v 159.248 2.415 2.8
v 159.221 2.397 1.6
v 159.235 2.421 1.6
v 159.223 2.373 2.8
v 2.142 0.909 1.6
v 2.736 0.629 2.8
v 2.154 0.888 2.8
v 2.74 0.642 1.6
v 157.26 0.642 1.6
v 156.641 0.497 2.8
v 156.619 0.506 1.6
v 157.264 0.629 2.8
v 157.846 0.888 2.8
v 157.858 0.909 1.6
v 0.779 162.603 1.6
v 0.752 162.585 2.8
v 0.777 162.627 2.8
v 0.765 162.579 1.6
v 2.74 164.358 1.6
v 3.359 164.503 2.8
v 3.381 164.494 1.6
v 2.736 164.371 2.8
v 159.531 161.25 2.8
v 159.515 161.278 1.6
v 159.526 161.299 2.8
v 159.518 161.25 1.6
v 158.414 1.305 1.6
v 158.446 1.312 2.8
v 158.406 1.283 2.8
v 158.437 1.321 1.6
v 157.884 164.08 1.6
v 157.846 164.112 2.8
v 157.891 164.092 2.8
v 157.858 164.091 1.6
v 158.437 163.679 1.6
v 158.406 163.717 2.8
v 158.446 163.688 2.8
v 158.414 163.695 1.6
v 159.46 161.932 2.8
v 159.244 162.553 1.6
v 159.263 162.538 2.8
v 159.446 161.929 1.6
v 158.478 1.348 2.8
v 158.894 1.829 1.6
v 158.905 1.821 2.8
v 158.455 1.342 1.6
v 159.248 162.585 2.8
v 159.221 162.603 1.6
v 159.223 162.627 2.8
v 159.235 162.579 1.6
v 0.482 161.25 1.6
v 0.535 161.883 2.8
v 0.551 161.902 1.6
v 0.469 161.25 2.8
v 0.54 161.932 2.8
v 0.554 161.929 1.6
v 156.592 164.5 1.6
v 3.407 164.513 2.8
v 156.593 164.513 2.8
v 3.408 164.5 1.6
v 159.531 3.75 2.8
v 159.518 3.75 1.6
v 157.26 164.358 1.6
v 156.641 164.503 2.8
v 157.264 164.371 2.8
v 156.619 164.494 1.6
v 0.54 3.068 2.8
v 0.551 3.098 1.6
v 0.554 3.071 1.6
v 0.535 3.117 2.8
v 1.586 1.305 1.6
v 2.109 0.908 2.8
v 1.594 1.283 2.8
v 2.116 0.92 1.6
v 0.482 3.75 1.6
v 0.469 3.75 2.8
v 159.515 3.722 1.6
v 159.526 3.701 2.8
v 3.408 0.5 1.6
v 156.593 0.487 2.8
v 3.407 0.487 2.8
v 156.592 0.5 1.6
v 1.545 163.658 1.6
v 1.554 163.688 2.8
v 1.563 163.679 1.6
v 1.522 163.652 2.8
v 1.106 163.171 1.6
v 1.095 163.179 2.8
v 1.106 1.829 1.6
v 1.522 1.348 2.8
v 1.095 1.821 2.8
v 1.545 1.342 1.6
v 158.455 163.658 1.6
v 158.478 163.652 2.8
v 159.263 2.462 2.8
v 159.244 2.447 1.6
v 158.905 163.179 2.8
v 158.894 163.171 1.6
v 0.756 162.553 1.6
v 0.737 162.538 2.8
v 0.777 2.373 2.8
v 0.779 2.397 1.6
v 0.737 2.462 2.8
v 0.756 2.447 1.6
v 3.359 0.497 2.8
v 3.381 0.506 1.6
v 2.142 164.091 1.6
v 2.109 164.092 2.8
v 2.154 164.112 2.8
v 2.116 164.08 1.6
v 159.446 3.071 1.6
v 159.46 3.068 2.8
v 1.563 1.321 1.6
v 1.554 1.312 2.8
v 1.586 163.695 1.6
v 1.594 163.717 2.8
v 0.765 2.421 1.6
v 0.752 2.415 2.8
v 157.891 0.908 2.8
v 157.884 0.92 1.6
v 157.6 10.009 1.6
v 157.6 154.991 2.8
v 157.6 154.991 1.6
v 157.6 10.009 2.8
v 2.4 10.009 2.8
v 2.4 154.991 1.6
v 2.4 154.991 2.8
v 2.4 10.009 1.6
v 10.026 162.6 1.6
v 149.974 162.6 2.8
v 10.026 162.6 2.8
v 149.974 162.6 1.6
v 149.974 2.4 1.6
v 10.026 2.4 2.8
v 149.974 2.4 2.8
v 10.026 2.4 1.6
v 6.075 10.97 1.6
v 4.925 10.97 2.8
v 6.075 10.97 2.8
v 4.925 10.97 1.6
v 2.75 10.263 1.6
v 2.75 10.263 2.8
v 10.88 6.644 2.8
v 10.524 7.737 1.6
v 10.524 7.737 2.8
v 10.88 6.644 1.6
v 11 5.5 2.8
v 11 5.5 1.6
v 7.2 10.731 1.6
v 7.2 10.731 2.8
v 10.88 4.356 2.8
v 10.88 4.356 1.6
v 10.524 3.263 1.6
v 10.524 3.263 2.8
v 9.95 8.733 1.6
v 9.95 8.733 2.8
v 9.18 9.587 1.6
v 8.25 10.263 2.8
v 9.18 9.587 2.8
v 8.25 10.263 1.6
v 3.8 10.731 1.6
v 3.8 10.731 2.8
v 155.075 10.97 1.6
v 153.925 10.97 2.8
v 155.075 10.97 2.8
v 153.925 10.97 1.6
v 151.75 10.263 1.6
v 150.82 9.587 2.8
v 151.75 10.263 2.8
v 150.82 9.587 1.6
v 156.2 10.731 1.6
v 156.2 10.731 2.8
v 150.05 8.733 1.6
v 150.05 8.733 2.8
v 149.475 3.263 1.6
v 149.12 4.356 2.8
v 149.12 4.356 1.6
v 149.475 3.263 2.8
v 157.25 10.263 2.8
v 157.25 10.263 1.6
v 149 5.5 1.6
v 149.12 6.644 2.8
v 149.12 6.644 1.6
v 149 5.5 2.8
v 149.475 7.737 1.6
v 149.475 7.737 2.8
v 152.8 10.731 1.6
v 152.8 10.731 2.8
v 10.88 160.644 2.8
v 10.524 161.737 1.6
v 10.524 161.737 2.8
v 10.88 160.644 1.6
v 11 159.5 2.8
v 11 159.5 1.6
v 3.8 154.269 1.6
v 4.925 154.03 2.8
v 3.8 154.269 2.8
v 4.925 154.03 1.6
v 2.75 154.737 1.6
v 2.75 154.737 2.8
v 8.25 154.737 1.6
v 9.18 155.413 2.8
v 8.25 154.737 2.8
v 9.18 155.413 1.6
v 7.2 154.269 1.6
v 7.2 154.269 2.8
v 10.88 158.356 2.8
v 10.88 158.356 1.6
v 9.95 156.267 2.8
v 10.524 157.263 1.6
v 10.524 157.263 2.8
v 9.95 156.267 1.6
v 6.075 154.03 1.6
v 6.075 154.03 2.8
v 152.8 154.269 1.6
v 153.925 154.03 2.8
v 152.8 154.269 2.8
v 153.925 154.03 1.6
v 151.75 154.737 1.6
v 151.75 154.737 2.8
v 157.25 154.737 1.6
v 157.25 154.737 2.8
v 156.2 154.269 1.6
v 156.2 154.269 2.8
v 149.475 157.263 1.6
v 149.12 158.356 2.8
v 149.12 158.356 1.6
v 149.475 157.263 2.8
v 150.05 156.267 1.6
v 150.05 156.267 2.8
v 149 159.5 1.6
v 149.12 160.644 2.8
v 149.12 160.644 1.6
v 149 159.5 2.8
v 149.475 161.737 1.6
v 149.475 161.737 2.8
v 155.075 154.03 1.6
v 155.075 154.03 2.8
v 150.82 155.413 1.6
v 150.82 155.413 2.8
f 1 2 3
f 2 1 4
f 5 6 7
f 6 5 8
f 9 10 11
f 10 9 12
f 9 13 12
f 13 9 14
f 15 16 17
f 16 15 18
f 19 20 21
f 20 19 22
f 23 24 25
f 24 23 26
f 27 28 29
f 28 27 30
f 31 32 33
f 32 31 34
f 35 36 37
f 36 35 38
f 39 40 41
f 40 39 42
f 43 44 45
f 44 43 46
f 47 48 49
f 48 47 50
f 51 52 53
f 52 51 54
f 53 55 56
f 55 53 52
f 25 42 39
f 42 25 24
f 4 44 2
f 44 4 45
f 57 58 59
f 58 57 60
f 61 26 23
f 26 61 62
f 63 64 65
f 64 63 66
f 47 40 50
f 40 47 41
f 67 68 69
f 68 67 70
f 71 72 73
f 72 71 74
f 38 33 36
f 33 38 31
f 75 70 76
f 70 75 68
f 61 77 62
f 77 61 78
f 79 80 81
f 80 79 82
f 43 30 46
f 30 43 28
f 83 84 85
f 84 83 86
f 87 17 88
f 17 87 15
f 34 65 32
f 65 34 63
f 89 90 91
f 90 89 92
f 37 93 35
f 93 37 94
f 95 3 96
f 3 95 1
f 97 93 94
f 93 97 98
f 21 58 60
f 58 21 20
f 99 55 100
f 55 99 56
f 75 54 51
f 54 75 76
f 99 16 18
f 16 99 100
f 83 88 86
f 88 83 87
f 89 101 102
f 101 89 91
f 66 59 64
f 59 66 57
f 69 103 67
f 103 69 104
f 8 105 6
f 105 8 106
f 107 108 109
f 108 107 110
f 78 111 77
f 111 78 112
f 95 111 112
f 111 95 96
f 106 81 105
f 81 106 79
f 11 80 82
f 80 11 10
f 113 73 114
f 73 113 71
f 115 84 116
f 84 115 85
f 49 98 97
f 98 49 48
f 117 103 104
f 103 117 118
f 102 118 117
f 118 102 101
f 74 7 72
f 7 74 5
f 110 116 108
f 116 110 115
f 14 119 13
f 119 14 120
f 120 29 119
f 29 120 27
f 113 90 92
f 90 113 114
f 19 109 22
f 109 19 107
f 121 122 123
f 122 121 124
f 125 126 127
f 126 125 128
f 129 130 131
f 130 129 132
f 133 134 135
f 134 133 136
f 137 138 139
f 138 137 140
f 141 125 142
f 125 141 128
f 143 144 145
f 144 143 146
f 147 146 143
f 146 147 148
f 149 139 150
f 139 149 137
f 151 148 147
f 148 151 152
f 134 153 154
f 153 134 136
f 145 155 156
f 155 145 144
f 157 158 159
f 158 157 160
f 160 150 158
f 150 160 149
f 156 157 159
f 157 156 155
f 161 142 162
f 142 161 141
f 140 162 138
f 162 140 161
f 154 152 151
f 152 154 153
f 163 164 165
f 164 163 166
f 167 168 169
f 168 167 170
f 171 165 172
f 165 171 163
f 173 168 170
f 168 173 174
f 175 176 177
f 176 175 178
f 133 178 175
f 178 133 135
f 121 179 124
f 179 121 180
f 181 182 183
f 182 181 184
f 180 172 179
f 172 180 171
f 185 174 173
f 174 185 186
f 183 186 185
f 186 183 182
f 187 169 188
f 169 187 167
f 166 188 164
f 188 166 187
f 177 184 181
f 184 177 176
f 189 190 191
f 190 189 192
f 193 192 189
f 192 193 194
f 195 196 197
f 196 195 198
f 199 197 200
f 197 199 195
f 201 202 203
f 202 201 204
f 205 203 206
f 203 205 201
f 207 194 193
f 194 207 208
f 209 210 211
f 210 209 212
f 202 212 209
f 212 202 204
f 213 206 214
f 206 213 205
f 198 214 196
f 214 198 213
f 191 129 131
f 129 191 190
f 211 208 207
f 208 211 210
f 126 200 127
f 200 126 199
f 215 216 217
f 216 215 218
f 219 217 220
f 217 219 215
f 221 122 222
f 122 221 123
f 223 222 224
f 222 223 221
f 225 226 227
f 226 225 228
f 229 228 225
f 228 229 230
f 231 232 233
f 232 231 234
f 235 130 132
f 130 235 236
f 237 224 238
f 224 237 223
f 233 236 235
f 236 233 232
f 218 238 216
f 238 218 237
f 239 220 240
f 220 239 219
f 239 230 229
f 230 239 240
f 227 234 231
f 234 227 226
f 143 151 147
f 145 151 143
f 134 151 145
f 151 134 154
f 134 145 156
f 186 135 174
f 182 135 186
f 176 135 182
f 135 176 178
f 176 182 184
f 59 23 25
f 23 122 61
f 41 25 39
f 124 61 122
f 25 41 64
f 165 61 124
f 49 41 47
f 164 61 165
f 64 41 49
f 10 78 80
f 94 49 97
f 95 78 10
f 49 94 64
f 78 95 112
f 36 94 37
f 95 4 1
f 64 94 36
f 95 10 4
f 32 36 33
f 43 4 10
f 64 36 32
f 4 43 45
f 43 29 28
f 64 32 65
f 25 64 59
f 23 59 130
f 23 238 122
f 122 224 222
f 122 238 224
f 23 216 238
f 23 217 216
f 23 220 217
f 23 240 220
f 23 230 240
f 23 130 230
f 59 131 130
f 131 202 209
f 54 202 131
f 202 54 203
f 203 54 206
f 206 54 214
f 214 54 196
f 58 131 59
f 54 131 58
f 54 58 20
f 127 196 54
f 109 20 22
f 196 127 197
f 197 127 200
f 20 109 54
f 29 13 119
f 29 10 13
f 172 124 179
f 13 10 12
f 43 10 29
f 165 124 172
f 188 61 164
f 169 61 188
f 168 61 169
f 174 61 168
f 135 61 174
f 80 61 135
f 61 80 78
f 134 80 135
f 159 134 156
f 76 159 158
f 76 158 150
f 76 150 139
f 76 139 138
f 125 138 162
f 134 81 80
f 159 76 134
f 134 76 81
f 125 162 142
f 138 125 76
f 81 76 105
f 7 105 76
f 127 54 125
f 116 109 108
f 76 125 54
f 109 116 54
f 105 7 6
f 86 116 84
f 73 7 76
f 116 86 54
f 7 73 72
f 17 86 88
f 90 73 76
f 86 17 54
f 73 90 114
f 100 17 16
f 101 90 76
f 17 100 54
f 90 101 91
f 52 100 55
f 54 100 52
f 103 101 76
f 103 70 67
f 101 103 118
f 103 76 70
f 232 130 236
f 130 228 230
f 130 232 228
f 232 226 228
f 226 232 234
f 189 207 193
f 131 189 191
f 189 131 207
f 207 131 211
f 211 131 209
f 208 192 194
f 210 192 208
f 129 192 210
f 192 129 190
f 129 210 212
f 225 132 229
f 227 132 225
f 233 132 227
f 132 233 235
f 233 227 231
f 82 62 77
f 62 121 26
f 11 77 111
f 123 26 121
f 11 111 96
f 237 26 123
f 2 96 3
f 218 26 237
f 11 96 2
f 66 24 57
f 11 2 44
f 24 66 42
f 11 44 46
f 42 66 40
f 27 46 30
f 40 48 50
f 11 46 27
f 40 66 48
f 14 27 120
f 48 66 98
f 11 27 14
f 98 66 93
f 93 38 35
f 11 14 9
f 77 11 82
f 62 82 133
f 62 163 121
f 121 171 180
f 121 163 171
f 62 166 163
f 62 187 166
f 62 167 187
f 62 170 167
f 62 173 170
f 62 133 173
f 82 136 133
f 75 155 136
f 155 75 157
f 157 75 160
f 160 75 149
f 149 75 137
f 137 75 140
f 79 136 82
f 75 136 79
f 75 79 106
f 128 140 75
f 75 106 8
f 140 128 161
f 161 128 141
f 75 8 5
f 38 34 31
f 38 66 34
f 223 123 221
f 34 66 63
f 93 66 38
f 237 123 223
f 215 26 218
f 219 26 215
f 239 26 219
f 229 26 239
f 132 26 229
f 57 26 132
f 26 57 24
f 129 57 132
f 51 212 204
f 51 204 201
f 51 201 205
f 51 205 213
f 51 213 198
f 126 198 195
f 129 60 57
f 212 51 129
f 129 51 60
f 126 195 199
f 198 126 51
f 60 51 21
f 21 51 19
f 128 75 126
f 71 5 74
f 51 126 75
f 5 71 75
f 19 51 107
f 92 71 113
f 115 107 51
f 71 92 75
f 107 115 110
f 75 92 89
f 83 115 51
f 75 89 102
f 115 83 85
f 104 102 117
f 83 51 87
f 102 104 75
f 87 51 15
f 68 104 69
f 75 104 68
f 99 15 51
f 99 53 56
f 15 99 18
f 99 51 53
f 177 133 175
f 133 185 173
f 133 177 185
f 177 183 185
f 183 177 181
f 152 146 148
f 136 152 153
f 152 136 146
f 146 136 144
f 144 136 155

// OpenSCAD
inset = 0.5;
cornerRad=3.75;
trayHt=46.5;
xDim = 160;
yDim = 165;
wallThick = 2.4;
bottomThick = 1.5;

bottomMagnets = 0;

epsilon = 0.1;

intersection() {
   tray();
   translate([-1,-1,bottomThick+epsilon]) cube([200,200,1.2]);
}

/* tray() -- final form, with magnet holes removed */
module tray() {
   difference() {
      /* remove anything that might have come out of the intended hull */
      intersection() {
         baseShape();
         trayHull();
      }

      /* cut out magnet holes */
      magnetHoles();
   }
}

/* baseShape() -- tray with cut out interior */
module baseShape() {
   difference() {
      trayHull();

      /* cut out interior */
      translate([wallThick, wallThick, bottomThick]) 
         cube([xDim - 2*wallThick, yDim - 2*wallThick, trayHt]);
   }

   cornerPosts();
}

/* corner rounded posts */
module cornerPosts() {
   postRad = 5.5;
   translate([postRad, postRad, 0])
      cylinder($fn=30, r=postRad,h=trayHt);
   translate([xDim - postRad, postRad, 0]) 
      cylinder($fn=30, r=postRad,h=trayHt);
   translate([postRad, yDim - postRad, 0]) 
      cylinder($fn=30, r=postRad,h=trayHt);
   translate([xDim - postRad, yDim - postRad, 0]) 
      cylinder($fn=30, r=postRad,h=trayHt);
}

module magnetHoles() {
   magnetOffset = 1.75;
   magnetRad = 3.25;

   /* bottom */
   if (bottomMagnets) {
      translate([magnetOffset+magnetRad, magnetOffset+magnetRad, -epsilon])
         cylinder($fn=20, r=magnetRad, h=3.25+epsilon);
      translate([xDim - magnetOffset-magnetRad, magnetOffset+magnetRad, -epsilon])
         cylinder($fn=20, r=magnetRad, h=3.25+epsilon);
      translate([magnetOffset+magnetRad, yDim - magnetOffset-magnetRad, -epsilon])
         cylinder($fn=20, r=magnetRad, h=3.25+epsilon);
      translate([xDim -magnetOffset-magnetRad, yDim - magnetOffset-magnetRad, -epsilon])
         cylinder($fn=20, r=magnetRad, h=3.25+epsilon);
   }

   /* top */
   translate([magnetOffset+magnetRad, magnetOffset+magnetRad, trayHt-3.25])
      cylinder($fn=20, r=magnetRad, h=3.25+epsilon);
   translate([xDim - magnetOffset-magnetRad, magnetOffset+magnetRad, trayHt-3.25])
      cylinder($fn=20, r=magnetRad, h=3.25+epsilon);
   translate([magnetOffset+magnetRad, yDim - magnetOffset-magnetRad, trayHt-3.25])
      cylinder($fn=20, r=magnetRad, h=3.25+epsilon);
   translate([xDim -magnetOffset-magnetRad, yDim - magnetOffset-magnetRad, trayHt-3.25])
      cylinder($fn=20, r=magnetRad, h=3.25+epsilon);
}

/* trayHull() -- this is the hull of the thing */
module trayHull() {
   botRad = cornerRad - inset;
   topInset = 0.75;

   hull() {
      /* bottom may be smaller */
      translate([cornerRad, cornerRad, 0])
         cylinder($fn=30, r=botRad,h=1);
      translate([xDim - cornerRad, cornerRad, 0]) 
         cylinder($fn=30, r=botRad,h=1);
      translate([cornerRad, yDim - cornerRad, 0]) 
         cylinder($fn=30, r=botRad,h=1);
      translate([xDim - cornerRad, yDim - cornerRad, 0]) 
         cylinder($fn=30, r=botRad,h=1);

      /* this creates a slight inset around top edge */
      if (1) {
         /* near top */
         translate([cornerRad, cornerRad, trayHt-1-topInset])
            cylinder($fn=30, r=cornerRad,h=1);
         translate([xDim - cornerRad, cornerRad, trayHt-1-topInset]) 
            cylinder($fn=30, r=cornerRad,h=1);
         translate([cornerRad, yDim - cornerRad, trayHt-1-topInset]) 
            cylinder($fn=30, r=cornerRad,h=1);
         translate([xDim - cornerRad, yDim - cornerRad, trayHt-1-topInset]) 
            cylinder($fn=30, r=cornerRad,h=1);
      }

      /* top, slightly inset */
      translate([cornerRad, cornerRad, trayHt-1])
         cylinder($fn=30, r=cornerRad-topInset,h=1);
      translate([xDim - cornerRad, cornerRad, trayHt-1]) 
         cylinder($fn=30, r=cornerRad-topInset,h=1);
      translate([cornerRad, yDim - cornerRad, trayHt-1]) 
         cylinder($fn=30, r=cornerRad-topInset,h=1);
      translate([xDim - cornerRad, yDim - cornerRad, trayHt-1]) 
         cylinder($fn=30, r=cornerRad-topInset,h=1);
   }
}
